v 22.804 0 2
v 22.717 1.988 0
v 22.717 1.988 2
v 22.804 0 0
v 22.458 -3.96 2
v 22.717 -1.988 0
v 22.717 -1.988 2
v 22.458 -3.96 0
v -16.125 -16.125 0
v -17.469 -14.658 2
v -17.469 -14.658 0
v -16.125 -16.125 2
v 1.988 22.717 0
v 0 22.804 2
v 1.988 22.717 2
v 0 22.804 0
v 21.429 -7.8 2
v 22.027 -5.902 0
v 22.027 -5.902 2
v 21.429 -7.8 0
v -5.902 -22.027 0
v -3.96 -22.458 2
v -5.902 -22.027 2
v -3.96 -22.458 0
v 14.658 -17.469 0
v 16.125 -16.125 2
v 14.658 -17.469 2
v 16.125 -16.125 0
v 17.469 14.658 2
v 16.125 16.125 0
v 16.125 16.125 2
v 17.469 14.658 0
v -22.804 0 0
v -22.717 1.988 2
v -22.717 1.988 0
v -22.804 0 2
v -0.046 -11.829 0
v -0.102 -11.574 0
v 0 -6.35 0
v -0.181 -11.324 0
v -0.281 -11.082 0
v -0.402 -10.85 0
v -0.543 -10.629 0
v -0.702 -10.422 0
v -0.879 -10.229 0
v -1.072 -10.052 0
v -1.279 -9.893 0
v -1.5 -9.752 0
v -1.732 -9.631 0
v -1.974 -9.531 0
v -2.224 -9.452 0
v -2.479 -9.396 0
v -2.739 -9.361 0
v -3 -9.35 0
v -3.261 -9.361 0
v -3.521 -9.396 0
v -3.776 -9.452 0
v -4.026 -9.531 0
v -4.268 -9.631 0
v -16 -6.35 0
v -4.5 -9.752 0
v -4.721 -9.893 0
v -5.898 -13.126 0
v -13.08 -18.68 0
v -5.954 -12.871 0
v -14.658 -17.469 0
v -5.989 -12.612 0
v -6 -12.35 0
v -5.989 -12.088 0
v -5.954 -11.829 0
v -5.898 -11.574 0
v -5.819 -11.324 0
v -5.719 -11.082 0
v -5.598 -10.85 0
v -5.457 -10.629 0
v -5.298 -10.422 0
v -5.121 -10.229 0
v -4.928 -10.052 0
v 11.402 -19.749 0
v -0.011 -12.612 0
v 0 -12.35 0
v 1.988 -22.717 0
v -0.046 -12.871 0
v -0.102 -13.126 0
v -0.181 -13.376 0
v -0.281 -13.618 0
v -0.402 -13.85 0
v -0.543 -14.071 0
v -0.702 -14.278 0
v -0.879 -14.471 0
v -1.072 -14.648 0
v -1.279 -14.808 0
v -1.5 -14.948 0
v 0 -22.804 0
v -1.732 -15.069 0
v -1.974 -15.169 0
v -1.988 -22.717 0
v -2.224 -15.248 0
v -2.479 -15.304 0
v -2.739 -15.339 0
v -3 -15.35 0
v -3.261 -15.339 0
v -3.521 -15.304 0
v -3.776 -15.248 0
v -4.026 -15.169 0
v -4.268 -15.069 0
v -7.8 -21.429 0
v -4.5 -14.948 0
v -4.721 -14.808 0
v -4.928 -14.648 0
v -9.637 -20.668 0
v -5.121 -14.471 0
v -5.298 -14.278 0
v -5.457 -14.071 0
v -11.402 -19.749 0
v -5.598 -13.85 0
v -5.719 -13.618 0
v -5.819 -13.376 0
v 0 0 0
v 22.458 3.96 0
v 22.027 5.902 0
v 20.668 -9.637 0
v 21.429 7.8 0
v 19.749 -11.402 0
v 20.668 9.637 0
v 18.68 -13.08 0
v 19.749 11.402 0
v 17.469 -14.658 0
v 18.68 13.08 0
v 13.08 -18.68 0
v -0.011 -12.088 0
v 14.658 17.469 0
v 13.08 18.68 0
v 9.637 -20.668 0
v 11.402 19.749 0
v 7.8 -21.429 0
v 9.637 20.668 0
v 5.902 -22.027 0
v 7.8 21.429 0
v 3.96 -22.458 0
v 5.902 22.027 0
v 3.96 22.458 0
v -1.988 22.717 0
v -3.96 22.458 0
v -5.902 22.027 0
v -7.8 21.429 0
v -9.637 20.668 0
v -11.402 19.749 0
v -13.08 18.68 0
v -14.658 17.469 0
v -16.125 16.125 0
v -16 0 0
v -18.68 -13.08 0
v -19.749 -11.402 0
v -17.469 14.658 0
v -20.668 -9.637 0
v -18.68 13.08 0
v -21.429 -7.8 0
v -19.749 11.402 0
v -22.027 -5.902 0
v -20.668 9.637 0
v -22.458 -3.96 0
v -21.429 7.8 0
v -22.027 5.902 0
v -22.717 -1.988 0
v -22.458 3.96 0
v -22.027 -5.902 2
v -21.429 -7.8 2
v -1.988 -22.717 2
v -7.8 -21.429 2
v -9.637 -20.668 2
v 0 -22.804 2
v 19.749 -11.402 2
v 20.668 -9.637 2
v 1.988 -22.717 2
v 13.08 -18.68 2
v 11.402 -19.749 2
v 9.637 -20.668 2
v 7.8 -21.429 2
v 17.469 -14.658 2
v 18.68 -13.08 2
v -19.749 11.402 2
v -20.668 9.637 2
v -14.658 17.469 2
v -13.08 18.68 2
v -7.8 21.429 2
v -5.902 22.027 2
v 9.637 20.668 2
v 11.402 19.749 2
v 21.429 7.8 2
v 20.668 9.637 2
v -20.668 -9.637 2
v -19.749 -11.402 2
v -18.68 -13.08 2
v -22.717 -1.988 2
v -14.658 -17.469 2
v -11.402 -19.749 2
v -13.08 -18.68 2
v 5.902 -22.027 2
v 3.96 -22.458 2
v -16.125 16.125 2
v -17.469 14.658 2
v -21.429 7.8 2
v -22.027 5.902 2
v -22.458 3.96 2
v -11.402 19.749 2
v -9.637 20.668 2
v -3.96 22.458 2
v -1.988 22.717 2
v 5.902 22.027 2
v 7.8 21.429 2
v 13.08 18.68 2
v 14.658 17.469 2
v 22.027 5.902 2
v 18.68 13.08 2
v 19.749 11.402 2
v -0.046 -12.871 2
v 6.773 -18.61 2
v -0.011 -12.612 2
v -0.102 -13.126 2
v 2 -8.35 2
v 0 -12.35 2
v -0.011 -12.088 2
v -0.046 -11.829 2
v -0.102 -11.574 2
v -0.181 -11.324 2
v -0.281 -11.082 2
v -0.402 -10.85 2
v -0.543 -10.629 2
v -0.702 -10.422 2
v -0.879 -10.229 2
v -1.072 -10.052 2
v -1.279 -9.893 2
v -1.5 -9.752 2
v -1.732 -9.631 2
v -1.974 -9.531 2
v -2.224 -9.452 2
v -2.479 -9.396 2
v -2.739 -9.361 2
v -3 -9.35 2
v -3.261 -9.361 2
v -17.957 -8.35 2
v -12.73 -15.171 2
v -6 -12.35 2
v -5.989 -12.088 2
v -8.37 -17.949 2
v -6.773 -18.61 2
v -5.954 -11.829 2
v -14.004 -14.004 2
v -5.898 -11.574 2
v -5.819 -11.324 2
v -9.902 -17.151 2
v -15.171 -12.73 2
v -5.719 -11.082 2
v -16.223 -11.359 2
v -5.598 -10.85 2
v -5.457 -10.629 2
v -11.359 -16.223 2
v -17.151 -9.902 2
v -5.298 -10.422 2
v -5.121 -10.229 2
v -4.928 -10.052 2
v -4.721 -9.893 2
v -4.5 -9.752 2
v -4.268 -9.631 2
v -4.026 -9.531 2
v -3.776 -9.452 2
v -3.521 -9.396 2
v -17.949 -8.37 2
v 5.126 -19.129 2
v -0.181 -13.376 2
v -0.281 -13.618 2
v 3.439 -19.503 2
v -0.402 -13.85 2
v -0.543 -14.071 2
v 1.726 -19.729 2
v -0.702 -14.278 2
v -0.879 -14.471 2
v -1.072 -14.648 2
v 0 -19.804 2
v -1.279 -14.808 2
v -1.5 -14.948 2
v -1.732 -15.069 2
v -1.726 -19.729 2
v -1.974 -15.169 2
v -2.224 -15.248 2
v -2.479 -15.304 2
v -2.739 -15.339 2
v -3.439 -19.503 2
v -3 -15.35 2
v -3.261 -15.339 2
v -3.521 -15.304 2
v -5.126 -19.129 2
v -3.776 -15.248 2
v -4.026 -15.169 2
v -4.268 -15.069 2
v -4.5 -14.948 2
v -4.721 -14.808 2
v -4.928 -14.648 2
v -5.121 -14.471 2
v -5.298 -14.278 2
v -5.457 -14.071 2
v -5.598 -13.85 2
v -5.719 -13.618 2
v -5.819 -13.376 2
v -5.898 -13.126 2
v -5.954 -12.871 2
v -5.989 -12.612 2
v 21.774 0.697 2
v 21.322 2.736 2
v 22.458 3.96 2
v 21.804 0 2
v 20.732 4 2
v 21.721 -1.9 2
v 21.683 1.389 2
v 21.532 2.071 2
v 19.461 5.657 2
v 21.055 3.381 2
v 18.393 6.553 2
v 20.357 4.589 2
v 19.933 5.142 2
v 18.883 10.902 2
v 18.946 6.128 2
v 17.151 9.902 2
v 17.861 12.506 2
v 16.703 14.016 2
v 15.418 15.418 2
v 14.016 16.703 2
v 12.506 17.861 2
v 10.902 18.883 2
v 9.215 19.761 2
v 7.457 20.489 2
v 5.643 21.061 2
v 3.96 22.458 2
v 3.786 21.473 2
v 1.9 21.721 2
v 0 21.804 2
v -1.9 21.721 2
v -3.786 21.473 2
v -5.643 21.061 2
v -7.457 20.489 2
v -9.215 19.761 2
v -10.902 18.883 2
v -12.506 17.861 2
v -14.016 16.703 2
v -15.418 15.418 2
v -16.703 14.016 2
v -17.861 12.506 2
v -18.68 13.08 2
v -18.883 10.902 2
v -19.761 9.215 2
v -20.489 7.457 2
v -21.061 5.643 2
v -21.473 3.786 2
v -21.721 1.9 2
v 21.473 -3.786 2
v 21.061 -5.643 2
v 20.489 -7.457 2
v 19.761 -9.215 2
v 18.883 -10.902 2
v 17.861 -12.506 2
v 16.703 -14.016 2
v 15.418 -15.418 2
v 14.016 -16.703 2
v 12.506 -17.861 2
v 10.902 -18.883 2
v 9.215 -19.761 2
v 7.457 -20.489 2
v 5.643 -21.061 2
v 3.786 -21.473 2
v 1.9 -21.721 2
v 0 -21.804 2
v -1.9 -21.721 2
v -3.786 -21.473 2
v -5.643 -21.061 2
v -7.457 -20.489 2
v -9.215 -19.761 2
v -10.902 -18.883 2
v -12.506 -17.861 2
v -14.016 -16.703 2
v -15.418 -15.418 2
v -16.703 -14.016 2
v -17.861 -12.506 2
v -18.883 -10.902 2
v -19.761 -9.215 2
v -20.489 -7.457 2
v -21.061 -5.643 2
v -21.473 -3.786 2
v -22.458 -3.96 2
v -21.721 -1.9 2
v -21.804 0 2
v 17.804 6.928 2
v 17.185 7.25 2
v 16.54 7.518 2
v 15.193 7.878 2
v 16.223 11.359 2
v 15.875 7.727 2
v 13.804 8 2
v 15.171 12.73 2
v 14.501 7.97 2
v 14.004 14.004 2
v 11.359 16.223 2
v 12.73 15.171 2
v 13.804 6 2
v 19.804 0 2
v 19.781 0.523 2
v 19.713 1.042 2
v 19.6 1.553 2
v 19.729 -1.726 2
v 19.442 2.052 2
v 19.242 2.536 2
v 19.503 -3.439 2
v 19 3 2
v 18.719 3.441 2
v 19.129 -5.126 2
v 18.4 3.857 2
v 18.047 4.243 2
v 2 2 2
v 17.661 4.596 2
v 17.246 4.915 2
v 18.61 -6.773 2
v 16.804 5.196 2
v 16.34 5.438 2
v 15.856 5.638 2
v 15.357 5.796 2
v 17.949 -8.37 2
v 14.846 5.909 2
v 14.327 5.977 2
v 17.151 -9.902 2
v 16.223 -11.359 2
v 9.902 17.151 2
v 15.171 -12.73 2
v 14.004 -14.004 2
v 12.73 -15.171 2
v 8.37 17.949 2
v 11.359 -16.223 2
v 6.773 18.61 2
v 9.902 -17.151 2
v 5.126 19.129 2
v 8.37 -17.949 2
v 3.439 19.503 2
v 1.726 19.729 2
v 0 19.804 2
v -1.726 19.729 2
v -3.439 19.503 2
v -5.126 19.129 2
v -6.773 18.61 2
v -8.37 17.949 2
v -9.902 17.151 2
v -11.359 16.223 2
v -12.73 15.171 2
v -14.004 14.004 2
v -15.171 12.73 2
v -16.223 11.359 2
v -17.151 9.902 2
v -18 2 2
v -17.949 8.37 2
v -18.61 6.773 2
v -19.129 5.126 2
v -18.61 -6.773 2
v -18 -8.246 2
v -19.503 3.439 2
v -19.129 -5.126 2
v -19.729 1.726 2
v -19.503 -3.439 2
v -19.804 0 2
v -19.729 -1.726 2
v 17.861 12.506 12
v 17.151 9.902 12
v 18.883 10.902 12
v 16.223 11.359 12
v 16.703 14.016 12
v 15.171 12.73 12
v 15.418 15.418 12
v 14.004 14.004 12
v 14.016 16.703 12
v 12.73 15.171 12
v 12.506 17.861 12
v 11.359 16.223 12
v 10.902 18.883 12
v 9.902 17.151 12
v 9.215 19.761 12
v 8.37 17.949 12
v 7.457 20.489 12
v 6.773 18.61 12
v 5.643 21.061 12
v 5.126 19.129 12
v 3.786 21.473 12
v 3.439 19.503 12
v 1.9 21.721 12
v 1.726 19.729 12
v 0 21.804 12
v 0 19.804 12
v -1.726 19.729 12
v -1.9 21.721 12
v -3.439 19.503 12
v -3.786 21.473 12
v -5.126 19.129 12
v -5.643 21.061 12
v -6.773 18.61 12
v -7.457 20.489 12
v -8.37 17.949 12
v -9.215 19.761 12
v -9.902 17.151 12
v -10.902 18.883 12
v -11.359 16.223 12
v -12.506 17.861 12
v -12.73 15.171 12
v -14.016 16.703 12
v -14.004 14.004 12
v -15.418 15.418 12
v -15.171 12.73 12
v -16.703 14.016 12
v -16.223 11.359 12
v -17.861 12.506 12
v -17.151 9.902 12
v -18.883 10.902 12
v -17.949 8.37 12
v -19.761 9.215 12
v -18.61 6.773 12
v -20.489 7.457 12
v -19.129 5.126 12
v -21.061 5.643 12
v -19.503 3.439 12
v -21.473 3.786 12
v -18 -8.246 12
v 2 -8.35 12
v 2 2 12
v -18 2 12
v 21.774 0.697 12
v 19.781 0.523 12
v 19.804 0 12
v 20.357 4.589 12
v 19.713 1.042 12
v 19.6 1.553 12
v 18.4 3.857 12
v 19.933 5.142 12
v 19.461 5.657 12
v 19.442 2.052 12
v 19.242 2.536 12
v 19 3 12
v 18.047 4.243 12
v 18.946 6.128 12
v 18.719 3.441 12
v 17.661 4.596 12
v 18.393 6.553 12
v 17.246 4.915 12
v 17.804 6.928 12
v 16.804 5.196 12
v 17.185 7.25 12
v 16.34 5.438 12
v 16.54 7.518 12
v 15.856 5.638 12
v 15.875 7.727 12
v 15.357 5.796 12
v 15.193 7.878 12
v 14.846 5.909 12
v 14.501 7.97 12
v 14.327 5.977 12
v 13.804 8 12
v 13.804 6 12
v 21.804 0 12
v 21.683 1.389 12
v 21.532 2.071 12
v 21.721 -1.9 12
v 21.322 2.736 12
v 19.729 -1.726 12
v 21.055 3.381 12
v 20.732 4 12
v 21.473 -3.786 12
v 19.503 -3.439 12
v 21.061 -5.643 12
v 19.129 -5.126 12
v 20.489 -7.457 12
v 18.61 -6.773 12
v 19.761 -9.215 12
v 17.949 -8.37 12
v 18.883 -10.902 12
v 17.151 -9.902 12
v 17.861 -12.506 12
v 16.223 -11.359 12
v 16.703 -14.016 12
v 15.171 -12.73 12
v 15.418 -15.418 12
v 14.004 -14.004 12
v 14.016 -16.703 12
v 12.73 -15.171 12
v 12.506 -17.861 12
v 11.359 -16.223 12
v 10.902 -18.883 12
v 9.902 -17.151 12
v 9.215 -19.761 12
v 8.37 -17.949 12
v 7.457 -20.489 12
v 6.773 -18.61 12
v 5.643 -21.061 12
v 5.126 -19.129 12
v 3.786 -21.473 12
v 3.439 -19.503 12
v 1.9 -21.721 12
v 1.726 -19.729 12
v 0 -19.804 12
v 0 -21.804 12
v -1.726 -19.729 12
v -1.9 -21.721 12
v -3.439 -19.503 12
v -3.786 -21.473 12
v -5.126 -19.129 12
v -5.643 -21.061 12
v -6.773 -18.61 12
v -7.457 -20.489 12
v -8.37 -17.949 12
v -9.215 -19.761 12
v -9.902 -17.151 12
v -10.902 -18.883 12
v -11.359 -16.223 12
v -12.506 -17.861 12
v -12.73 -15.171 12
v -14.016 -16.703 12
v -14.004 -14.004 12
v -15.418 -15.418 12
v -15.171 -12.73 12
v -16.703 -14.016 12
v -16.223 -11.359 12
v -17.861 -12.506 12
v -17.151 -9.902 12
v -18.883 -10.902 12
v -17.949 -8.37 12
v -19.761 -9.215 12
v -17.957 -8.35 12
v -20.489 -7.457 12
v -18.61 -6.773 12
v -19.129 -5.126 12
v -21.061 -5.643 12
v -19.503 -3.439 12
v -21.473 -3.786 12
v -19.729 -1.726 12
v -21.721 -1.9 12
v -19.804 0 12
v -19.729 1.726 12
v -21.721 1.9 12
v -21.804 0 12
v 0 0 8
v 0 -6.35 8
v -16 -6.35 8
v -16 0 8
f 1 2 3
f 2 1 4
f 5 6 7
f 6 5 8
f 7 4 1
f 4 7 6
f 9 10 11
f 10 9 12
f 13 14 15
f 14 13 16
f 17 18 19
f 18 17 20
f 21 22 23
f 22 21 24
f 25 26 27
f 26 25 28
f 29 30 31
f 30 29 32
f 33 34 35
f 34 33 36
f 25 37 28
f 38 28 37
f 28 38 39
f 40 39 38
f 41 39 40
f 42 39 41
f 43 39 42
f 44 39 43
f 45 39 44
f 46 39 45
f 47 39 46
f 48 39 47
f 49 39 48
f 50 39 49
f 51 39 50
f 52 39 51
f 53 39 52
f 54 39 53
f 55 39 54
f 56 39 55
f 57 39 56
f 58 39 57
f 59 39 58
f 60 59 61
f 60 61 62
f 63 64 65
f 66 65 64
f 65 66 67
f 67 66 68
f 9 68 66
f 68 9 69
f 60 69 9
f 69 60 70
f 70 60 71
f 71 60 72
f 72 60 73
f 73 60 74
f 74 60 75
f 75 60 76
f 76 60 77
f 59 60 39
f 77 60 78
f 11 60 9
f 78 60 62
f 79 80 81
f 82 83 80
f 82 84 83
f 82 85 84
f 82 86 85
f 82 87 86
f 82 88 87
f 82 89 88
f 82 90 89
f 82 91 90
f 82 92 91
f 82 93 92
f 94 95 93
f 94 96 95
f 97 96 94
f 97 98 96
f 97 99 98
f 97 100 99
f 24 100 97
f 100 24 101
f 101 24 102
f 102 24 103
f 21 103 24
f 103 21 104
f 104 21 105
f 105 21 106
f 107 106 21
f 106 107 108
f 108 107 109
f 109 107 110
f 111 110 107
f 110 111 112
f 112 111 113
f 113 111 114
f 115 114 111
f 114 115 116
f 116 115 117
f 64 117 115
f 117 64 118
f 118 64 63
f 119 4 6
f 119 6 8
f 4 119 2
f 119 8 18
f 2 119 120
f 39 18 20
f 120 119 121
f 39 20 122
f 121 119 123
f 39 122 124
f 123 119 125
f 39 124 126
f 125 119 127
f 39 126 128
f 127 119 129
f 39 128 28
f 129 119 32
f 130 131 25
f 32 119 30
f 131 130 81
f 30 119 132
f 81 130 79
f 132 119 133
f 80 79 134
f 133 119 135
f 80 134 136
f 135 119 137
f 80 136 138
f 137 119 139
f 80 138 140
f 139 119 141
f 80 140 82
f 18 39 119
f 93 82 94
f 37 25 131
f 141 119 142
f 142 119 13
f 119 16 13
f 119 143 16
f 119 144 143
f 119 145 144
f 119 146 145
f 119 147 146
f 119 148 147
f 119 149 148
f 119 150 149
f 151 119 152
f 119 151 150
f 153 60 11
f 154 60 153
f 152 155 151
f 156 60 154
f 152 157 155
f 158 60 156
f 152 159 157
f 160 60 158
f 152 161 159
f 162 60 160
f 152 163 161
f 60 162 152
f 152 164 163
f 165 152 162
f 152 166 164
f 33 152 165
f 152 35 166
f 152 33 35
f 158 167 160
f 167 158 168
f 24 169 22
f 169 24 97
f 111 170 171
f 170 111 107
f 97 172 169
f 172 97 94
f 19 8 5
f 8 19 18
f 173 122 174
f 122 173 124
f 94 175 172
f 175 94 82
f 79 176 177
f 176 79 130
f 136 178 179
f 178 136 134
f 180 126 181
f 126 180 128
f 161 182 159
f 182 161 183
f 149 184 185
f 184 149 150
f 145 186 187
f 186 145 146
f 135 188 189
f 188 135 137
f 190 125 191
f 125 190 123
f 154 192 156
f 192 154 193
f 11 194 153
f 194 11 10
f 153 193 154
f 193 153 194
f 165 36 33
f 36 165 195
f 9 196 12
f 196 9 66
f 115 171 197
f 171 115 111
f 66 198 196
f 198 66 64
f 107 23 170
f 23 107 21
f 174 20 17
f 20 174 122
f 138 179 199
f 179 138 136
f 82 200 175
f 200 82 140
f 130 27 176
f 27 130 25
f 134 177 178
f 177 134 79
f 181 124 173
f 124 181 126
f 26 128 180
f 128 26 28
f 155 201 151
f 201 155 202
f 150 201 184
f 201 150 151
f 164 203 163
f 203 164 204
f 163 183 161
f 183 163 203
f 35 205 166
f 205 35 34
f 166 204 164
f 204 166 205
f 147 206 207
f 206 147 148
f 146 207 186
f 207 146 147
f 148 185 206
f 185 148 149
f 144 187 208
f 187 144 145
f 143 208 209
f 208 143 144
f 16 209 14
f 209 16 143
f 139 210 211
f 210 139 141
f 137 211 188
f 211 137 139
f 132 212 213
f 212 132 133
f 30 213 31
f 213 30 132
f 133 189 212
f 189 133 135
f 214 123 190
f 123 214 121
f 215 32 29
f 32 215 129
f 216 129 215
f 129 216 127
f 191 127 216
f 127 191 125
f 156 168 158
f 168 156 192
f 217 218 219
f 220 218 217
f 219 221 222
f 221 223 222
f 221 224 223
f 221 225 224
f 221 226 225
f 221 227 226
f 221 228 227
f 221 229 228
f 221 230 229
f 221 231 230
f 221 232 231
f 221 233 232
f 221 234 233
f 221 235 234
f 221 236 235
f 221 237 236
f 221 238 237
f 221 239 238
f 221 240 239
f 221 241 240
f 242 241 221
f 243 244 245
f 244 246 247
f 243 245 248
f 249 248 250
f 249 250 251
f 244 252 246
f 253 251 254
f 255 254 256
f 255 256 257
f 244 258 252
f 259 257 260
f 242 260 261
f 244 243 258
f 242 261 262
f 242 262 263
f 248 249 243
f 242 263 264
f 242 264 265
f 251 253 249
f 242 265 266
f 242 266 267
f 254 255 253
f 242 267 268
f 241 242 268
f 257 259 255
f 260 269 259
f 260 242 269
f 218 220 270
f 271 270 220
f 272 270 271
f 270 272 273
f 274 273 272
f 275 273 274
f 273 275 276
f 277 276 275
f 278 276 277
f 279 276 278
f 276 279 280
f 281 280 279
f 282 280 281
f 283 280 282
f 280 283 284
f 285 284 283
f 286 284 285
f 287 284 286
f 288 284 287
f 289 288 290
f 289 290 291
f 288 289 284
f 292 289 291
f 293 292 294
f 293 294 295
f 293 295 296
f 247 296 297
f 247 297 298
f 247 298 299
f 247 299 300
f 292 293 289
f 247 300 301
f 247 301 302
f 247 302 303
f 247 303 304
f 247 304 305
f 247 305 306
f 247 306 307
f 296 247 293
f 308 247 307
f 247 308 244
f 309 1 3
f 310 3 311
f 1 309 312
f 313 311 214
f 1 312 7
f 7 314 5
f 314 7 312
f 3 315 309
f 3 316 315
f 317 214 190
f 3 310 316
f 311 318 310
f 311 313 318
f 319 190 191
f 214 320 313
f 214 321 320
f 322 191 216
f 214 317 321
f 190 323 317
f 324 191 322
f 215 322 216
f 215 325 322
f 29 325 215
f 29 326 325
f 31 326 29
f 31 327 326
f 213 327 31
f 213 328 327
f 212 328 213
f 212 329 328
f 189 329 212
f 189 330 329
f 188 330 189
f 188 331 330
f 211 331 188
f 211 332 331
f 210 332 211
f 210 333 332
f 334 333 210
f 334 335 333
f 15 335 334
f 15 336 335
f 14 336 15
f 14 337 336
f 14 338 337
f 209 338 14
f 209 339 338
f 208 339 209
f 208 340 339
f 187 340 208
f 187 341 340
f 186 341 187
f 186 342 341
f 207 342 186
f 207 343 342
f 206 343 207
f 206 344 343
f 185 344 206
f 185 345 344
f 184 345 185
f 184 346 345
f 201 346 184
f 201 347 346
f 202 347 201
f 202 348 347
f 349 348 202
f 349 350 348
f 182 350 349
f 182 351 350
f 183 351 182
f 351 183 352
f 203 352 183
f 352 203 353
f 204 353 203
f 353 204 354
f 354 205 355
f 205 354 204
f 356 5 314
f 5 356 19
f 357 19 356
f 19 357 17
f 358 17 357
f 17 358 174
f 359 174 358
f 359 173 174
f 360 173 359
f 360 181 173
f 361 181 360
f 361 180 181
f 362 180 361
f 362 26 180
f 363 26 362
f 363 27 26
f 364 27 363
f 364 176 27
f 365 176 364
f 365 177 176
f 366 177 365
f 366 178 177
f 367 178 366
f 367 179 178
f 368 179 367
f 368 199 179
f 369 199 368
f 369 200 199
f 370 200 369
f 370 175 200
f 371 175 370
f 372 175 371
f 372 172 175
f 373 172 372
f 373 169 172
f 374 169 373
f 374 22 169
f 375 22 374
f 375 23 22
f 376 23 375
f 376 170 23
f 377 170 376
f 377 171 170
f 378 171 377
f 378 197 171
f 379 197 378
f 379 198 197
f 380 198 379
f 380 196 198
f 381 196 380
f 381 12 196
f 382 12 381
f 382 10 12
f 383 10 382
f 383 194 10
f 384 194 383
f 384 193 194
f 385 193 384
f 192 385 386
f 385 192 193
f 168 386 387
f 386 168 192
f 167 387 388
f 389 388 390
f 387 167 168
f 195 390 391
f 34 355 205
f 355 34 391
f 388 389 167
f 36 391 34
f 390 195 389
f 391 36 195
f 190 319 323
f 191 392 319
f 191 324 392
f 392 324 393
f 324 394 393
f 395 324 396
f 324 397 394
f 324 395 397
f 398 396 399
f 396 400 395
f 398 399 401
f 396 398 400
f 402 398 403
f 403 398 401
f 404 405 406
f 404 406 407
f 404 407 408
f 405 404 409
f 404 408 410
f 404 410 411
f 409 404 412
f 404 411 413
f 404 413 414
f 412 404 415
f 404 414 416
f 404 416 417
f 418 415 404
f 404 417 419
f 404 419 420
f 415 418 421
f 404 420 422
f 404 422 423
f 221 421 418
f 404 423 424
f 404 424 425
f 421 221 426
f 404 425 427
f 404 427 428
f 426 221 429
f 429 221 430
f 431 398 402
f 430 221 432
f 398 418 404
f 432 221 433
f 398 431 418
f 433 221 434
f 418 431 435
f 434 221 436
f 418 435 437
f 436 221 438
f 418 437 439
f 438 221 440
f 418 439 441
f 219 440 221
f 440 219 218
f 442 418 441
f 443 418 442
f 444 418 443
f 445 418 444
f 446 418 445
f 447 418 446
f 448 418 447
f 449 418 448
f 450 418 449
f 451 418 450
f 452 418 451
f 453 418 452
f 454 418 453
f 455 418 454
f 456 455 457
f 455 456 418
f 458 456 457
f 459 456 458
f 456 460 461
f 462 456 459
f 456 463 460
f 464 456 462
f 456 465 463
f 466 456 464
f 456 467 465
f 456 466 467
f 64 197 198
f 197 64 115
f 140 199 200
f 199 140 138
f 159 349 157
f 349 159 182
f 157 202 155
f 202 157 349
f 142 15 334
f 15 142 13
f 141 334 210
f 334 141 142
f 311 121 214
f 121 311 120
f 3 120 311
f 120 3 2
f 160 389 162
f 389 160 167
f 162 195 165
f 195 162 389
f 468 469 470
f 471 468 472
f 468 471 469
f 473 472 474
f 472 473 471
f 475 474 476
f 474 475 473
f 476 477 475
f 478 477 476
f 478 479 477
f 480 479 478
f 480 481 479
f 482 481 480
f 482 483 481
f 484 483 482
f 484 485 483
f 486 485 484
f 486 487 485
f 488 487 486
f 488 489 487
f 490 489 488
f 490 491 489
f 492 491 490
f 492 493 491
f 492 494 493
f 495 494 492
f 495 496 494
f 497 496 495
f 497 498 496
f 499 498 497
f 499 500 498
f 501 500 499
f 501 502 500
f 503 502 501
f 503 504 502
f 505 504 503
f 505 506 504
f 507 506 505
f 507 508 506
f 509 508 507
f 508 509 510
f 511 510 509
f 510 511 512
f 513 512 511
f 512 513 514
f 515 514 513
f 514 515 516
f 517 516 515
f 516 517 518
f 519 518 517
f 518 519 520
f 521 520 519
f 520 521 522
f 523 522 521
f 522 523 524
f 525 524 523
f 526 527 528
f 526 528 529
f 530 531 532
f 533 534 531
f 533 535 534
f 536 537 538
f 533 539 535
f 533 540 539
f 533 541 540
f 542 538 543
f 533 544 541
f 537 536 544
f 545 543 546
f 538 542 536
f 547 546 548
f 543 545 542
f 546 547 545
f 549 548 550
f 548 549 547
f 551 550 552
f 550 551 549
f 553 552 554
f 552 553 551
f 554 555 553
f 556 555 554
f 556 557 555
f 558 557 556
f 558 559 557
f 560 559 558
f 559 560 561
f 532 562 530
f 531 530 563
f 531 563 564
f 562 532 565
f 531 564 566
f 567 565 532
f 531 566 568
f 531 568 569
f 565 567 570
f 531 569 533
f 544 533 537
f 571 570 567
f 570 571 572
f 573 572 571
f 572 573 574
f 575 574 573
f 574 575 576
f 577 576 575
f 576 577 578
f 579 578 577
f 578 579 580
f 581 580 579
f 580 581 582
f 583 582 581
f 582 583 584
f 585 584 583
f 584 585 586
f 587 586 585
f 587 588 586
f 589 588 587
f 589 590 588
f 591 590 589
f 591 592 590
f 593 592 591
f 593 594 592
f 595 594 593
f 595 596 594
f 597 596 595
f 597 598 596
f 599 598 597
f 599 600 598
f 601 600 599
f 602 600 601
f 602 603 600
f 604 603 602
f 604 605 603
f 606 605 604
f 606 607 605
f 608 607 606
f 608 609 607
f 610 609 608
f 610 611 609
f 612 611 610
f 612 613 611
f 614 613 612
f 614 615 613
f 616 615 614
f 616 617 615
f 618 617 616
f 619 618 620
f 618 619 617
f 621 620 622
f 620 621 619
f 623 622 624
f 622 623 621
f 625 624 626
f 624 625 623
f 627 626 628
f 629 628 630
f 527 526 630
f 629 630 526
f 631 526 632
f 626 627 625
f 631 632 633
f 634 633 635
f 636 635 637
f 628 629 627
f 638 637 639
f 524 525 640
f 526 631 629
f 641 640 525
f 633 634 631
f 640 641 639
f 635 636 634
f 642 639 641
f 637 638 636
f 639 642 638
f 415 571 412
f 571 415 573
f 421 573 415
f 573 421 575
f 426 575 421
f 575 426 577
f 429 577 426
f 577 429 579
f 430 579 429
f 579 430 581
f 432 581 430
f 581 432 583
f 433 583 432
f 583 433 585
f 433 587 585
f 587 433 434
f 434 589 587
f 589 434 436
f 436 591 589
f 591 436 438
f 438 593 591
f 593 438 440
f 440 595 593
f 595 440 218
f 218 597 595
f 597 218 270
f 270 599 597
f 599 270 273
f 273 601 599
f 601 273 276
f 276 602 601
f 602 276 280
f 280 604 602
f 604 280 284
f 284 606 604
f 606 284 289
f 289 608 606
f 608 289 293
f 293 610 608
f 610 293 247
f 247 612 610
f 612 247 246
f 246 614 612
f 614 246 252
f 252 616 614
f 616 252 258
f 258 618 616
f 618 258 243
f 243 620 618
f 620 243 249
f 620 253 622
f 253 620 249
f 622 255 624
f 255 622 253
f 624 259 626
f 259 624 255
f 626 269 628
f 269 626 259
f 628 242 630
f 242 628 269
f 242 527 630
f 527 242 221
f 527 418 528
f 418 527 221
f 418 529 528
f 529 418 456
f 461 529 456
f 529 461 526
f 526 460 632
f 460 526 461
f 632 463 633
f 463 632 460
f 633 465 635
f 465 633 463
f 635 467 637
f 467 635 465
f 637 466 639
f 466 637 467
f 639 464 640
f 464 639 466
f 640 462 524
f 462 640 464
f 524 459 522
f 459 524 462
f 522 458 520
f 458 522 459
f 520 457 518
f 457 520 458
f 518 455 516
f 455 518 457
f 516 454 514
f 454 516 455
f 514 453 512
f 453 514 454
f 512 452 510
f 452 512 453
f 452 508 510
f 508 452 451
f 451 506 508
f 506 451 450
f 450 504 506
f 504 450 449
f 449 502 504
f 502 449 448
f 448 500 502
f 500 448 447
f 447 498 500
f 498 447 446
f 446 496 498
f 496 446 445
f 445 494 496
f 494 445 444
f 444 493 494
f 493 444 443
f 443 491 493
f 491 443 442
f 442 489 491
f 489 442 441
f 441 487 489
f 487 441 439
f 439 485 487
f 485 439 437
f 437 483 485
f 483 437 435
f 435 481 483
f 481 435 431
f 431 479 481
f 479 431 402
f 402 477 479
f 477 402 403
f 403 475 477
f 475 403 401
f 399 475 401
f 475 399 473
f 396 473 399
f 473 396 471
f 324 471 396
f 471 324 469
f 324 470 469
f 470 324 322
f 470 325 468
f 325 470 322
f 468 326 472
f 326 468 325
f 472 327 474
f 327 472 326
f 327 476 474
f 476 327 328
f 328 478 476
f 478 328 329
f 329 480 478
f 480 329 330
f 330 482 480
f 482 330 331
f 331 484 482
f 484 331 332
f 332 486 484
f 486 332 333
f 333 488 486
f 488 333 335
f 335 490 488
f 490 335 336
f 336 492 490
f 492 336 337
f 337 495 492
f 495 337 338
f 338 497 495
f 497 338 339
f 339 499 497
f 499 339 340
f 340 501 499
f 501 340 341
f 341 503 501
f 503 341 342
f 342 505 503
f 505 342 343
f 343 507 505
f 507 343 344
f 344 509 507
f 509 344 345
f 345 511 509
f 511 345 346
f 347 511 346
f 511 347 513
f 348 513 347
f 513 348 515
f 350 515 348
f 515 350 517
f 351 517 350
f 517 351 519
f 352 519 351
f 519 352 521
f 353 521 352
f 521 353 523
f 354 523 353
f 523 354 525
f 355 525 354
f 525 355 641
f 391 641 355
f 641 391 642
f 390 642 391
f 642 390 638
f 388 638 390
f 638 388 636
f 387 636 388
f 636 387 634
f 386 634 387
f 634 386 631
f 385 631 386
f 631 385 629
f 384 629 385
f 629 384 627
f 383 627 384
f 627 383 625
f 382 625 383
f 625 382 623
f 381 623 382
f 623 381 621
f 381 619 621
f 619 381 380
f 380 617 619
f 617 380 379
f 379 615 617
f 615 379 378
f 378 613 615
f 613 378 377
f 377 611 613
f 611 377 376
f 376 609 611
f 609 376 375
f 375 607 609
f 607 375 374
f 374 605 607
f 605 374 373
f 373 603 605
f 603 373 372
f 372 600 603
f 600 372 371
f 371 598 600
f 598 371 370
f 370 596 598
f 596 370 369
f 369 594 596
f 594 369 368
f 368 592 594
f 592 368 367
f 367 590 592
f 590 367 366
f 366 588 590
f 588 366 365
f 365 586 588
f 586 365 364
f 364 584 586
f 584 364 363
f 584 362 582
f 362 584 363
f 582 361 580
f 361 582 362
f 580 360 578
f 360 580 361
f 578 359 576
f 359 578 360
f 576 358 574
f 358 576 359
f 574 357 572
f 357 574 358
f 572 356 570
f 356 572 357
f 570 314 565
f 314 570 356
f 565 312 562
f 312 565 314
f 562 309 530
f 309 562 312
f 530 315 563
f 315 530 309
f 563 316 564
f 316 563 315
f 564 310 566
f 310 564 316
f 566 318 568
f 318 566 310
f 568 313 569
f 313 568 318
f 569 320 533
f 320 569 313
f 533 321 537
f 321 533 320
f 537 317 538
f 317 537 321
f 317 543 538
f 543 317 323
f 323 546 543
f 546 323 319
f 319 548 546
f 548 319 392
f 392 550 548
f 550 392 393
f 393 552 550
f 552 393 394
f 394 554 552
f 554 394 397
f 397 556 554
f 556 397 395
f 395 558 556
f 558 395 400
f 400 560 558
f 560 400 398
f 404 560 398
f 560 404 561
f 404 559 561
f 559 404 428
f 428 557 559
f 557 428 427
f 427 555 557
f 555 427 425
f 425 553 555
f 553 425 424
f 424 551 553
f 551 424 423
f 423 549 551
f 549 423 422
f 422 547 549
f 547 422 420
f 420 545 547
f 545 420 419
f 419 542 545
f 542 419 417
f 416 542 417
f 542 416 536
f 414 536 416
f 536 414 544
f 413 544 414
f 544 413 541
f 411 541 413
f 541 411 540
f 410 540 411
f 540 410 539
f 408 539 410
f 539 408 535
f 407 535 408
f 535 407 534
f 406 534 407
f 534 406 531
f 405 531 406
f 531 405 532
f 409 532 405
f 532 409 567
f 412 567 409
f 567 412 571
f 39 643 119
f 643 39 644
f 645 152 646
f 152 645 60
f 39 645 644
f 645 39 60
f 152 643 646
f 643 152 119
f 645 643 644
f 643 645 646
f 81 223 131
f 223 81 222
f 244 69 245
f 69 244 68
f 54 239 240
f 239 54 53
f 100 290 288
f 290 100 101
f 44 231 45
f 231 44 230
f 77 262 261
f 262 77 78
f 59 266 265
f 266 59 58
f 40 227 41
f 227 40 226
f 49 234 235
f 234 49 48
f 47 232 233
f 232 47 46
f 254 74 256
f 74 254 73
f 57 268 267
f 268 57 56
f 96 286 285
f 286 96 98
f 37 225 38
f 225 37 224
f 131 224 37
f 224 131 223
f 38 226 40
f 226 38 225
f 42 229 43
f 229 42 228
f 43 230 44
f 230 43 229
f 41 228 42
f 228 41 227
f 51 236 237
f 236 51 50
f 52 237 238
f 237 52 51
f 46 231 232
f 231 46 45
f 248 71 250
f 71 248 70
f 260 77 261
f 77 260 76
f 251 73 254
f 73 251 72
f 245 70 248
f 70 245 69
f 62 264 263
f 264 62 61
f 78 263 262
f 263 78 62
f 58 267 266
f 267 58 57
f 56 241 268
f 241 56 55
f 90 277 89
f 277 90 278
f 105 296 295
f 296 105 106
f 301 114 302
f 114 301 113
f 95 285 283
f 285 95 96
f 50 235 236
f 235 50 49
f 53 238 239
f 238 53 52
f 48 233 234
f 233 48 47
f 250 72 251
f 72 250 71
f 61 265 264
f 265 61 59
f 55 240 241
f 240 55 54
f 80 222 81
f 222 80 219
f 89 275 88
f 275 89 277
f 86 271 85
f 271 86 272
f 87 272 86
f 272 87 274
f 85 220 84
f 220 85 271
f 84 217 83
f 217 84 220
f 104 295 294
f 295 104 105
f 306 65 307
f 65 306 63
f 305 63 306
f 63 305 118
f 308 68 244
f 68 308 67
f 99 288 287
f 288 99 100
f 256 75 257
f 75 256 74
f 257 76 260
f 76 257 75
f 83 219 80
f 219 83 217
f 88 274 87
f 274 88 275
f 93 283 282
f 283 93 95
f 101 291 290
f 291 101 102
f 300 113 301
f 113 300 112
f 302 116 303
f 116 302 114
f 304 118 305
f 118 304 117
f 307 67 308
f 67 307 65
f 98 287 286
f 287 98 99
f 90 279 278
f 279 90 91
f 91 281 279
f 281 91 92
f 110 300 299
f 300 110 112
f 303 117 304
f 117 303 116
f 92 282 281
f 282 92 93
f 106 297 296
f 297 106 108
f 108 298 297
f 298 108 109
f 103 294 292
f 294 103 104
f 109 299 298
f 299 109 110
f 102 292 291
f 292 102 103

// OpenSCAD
/*
 * Copyright 2019 Stephen Warren <swarren@wwwdotorg.org>
 *
 * Permission is hereby granted, free of charge, to any person obtaining a
 * copy of this software and associated documentation files (the "Software"),
 * to deal in the Software without restriction, including without limitation
 * the rights to use, copy, modify, merge, publish, distribute, sublicense,
 * and/or sell copies of the Software, and to permit persons to whom the
 * Software is furnished to do so, subject to the following conditions:
 *
 * The above copyright notice and this permission notice shall be included in
 * all copies or substantial portions of the Software.
 *
 * THE SOFTWARE IS PROVIDED "AS IS", WITHOUT WARRANTY OF ANY KIND, EXPRESS OR
 * IMPLIED, INCLUDING BUT NOT LIMITED TO THE WARRANTIES OF MERCHANTABILITY,
 * FITNESS FOR A PARTICULAR PURPOSE AND NONINFRINGEMENT.  IN NO EVENT SHALL
 * THE AUTHORS OR COPYRIGHT HOLDERS BE LIABLE FOR ANY CLAIM, DAMAGES OR OTHER
 * LIABILITY, WHETHER IN AN ACTION OF CONTRACT, TORT OR OTHERWISE, ARISING
 * FROM, OUT OF OR IN CONNECTION WITH THE SOFTWARE OR THE USE OR OTHER
 * DEALINGS IN THE SOFTWARE.
 */

$fn = 360 / 5;

len_8_leds = 137;
outer_r = len_8_leds / (2 * PI);
mount_w = 16;
//mount_thick = 2; // Mounted onto PCB
mount_thick = 1/4 * 25.4; // Mounted onto 1/4" wood piece
base_thick = 2;
wall_w = 2;
wire_hole_r = 3;
led_h = 10;
total_h = base_thick + led_h;

module wedge(r, a0, a1) {
  points = [
    [0, 0],
    [r * cos(a0), r * sin(a0)],
    [r * cos(a1), r * sin(a1)],
  ];
  paths = [
    [0, 1, 2]
  ];
  polygon(points, paths, 0);
}

module thick_arc_cutout(r0, r1, a0, a1) {
    difference() {
        circle(center=true, r=r1);
        circle(center=true, r=r0);
        wedge(2 * r1, a0, a1);
    }
}

module thick_arc_acute(r0, r1, a0, a1) {
    intersection() {
        difference() {
            circle(center=true, r=r1);
            circle(center=true, r=r0);
        }
        wedge(2 * r1, a0, a1);
    }
}

difference() {
    union() {
        linear_extrude(height=base_thick)
            circle(center=true, r=outer_r + 1);
        linear_extrude(height=total_h) {
            thick_arc_cutout(outer_r - wall_w, outer_r, 0, 30);
            translate([outer_r - wall_w - 6, 0, 0])
                thick_arc_acute(6, 8, 0, 90);
            translate([-(mount_w + wall_w), -(mount_thick + wall_w), 0])
                square(size=[mount_w + 4, mount_thick + 4], center=false);
        }
    }
    translate([-mount_w, -mount_thick, -1])
        linear_extrude(height=9)
        square(size=[mount_w, mount_thick], center=false);
    translate([-wire_hole_r, -(mount_thick + wall_w + 1 + wire_hole_r), 0])
        cylinder(r=wire_hole_r, h=total_h, center=true);
}
